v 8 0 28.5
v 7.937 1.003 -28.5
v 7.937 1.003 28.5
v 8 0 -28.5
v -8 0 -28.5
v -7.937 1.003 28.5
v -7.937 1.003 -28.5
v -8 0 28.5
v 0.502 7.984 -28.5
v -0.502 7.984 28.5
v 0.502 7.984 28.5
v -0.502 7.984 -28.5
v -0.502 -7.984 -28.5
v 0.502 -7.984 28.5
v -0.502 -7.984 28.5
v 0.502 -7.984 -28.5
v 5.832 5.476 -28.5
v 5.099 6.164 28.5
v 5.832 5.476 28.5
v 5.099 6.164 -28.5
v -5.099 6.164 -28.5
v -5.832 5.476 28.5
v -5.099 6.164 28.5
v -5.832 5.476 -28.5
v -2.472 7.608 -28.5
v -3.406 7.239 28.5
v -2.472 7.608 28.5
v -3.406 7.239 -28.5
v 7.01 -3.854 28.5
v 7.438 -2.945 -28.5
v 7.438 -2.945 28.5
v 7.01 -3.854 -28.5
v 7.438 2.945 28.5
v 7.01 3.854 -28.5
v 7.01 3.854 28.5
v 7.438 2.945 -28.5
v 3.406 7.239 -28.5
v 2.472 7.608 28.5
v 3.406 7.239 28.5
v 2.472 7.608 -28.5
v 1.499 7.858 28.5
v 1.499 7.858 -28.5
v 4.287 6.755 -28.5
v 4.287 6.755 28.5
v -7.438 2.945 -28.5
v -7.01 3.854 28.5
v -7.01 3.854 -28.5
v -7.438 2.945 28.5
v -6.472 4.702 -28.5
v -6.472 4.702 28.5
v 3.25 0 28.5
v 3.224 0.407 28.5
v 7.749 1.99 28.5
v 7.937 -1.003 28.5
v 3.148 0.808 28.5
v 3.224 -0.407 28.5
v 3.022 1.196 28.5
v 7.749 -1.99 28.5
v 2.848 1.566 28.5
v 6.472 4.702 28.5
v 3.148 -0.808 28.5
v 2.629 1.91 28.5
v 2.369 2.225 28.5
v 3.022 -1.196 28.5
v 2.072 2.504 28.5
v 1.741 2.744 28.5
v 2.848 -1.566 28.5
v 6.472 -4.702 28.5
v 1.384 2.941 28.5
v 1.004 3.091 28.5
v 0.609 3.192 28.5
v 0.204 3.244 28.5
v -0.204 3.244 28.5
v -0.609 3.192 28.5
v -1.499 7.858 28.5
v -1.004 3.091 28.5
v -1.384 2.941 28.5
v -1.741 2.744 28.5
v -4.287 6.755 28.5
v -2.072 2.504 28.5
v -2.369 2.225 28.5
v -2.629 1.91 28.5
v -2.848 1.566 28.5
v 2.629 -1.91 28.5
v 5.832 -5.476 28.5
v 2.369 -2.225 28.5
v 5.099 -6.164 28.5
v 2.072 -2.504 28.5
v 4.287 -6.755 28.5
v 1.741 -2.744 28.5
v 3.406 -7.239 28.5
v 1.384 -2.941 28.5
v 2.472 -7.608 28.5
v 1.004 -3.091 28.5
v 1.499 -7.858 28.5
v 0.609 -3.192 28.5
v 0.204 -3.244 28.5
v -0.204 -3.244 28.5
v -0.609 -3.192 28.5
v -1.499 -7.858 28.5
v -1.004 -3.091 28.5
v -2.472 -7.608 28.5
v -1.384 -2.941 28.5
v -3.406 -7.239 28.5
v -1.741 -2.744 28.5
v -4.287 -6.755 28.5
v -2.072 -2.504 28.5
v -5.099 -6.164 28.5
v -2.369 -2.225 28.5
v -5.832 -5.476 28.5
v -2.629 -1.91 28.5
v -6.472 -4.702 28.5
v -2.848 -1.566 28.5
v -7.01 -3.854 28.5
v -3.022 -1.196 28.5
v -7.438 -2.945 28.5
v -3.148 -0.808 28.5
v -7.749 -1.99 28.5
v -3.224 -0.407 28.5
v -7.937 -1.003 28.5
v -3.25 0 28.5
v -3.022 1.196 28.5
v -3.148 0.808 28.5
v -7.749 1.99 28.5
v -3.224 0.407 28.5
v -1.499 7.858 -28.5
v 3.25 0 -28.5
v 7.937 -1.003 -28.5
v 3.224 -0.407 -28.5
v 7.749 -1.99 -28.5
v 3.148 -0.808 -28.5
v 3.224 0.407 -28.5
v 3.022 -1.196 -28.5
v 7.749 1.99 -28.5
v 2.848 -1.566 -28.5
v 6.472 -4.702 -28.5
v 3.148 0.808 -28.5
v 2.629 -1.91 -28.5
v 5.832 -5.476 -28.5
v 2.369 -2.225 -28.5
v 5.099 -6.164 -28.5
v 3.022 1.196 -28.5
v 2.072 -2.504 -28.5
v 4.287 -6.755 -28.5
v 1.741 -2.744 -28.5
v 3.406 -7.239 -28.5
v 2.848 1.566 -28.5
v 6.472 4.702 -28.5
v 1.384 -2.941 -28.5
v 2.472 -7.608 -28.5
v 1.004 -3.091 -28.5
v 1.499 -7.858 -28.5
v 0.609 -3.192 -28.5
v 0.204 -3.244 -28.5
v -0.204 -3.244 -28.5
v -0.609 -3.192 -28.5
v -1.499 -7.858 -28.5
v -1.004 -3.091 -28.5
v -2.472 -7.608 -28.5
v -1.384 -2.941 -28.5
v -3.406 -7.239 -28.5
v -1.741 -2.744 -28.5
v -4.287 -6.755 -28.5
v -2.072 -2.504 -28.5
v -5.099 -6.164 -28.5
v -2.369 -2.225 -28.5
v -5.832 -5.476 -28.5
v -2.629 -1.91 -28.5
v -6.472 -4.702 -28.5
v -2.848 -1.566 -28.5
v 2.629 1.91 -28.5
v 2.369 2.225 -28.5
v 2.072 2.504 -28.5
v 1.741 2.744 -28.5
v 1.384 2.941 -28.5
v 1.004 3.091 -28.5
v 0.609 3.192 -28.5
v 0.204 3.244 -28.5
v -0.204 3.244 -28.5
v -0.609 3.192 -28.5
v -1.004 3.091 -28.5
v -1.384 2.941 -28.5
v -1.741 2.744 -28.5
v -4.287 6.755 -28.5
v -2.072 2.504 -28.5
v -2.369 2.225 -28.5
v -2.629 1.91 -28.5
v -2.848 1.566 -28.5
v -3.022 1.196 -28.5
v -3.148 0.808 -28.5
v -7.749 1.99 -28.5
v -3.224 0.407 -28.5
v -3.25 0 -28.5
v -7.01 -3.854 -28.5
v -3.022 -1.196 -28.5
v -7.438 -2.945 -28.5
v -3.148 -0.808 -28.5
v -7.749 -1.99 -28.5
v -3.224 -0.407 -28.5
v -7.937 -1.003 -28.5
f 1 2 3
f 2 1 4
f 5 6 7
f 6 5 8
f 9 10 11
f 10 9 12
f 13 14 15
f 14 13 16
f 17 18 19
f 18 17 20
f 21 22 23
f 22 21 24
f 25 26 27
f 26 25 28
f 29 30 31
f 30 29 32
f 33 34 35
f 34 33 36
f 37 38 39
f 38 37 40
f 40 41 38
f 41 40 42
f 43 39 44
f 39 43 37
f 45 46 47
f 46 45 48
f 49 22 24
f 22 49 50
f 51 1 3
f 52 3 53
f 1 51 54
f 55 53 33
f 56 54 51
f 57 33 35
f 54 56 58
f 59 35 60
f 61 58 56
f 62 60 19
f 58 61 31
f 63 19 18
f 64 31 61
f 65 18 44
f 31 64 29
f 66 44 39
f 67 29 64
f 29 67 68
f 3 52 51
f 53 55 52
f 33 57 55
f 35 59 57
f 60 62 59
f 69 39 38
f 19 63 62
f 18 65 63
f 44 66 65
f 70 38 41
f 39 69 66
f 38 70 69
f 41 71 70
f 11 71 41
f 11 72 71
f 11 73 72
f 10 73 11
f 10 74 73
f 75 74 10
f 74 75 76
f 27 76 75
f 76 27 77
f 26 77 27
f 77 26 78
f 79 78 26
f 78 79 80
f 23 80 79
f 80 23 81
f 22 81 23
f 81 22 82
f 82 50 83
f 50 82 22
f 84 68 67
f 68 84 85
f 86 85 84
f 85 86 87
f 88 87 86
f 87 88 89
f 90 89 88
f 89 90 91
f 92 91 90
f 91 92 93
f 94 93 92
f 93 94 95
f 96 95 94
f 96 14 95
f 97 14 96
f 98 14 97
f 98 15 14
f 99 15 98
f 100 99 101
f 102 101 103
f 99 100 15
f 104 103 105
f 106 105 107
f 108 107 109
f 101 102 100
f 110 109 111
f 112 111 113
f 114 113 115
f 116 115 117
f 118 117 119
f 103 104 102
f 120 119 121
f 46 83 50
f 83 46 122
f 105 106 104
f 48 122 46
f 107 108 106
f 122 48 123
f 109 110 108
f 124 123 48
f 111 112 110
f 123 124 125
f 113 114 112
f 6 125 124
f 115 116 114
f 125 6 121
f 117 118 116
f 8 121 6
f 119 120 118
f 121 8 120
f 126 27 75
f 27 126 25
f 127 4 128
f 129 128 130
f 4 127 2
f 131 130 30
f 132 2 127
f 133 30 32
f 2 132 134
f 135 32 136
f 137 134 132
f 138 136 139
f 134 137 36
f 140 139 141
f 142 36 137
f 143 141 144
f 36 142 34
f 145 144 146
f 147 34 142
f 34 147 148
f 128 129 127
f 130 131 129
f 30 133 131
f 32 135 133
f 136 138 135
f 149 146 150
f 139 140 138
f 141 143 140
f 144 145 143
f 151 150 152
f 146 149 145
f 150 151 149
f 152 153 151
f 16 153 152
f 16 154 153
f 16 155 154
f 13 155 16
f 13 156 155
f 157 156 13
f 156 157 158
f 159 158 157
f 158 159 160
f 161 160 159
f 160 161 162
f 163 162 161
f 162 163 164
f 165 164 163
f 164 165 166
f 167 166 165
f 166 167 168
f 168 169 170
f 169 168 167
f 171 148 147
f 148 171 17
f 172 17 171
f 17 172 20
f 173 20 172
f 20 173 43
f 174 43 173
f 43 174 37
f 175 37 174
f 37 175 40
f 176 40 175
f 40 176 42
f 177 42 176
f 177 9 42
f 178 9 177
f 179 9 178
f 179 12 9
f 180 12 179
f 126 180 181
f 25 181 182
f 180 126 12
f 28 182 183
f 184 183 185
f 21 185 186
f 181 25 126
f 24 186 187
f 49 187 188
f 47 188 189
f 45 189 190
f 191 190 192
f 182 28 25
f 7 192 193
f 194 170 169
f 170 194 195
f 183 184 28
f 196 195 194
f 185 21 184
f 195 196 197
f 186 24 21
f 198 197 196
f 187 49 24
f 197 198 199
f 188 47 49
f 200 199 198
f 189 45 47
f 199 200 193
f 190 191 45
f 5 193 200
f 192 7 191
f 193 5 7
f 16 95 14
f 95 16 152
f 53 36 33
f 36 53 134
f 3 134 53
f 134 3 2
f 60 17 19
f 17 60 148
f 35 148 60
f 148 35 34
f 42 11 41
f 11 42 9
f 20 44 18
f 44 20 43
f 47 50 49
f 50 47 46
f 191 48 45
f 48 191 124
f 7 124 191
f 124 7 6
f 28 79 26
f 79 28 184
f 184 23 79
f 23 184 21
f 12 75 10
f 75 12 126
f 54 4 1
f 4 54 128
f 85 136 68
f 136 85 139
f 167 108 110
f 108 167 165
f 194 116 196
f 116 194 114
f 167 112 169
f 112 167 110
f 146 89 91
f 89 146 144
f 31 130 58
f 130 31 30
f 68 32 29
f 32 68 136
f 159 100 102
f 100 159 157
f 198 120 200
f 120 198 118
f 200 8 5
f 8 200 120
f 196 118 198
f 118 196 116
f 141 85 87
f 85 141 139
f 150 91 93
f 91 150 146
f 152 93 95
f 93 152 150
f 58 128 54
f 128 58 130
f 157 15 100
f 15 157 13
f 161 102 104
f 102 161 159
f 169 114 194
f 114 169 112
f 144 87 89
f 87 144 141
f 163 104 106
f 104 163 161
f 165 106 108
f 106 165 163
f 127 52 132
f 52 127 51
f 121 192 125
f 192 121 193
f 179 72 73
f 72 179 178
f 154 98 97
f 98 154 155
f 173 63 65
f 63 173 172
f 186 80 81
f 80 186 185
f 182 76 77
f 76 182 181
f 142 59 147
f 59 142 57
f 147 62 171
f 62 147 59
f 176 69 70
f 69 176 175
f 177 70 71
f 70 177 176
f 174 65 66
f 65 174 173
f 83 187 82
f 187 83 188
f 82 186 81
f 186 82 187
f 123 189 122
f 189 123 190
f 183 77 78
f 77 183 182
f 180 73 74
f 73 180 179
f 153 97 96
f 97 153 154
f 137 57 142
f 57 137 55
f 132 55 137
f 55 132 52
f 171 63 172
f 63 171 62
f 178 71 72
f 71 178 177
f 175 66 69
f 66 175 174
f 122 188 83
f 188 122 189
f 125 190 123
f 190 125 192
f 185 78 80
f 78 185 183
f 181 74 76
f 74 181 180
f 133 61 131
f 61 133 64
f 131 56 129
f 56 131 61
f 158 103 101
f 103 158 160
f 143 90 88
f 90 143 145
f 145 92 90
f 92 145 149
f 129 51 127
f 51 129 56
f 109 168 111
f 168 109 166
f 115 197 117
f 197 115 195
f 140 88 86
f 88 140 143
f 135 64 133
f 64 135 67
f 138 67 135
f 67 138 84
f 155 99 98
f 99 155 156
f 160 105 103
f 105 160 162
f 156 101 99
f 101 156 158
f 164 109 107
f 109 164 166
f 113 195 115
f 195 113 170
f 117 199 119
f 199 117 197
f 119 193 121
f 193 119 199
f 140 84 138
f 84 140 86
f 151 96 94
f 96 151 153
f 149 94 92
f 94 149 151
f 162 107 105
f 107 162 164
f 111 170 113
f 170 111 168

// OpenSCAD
$fn = 50;


difference() {
	union() {
		translate(v = [0, 0, -28.5000000000]) {
			cylinder(h = 57, r = 8.0000000000);
		}
	}
	union() {
		translate(v = [0, 0, -100.0000000000]) {
			cylinder(h = 200, r = 3.2500000000);
		}
	}
}
